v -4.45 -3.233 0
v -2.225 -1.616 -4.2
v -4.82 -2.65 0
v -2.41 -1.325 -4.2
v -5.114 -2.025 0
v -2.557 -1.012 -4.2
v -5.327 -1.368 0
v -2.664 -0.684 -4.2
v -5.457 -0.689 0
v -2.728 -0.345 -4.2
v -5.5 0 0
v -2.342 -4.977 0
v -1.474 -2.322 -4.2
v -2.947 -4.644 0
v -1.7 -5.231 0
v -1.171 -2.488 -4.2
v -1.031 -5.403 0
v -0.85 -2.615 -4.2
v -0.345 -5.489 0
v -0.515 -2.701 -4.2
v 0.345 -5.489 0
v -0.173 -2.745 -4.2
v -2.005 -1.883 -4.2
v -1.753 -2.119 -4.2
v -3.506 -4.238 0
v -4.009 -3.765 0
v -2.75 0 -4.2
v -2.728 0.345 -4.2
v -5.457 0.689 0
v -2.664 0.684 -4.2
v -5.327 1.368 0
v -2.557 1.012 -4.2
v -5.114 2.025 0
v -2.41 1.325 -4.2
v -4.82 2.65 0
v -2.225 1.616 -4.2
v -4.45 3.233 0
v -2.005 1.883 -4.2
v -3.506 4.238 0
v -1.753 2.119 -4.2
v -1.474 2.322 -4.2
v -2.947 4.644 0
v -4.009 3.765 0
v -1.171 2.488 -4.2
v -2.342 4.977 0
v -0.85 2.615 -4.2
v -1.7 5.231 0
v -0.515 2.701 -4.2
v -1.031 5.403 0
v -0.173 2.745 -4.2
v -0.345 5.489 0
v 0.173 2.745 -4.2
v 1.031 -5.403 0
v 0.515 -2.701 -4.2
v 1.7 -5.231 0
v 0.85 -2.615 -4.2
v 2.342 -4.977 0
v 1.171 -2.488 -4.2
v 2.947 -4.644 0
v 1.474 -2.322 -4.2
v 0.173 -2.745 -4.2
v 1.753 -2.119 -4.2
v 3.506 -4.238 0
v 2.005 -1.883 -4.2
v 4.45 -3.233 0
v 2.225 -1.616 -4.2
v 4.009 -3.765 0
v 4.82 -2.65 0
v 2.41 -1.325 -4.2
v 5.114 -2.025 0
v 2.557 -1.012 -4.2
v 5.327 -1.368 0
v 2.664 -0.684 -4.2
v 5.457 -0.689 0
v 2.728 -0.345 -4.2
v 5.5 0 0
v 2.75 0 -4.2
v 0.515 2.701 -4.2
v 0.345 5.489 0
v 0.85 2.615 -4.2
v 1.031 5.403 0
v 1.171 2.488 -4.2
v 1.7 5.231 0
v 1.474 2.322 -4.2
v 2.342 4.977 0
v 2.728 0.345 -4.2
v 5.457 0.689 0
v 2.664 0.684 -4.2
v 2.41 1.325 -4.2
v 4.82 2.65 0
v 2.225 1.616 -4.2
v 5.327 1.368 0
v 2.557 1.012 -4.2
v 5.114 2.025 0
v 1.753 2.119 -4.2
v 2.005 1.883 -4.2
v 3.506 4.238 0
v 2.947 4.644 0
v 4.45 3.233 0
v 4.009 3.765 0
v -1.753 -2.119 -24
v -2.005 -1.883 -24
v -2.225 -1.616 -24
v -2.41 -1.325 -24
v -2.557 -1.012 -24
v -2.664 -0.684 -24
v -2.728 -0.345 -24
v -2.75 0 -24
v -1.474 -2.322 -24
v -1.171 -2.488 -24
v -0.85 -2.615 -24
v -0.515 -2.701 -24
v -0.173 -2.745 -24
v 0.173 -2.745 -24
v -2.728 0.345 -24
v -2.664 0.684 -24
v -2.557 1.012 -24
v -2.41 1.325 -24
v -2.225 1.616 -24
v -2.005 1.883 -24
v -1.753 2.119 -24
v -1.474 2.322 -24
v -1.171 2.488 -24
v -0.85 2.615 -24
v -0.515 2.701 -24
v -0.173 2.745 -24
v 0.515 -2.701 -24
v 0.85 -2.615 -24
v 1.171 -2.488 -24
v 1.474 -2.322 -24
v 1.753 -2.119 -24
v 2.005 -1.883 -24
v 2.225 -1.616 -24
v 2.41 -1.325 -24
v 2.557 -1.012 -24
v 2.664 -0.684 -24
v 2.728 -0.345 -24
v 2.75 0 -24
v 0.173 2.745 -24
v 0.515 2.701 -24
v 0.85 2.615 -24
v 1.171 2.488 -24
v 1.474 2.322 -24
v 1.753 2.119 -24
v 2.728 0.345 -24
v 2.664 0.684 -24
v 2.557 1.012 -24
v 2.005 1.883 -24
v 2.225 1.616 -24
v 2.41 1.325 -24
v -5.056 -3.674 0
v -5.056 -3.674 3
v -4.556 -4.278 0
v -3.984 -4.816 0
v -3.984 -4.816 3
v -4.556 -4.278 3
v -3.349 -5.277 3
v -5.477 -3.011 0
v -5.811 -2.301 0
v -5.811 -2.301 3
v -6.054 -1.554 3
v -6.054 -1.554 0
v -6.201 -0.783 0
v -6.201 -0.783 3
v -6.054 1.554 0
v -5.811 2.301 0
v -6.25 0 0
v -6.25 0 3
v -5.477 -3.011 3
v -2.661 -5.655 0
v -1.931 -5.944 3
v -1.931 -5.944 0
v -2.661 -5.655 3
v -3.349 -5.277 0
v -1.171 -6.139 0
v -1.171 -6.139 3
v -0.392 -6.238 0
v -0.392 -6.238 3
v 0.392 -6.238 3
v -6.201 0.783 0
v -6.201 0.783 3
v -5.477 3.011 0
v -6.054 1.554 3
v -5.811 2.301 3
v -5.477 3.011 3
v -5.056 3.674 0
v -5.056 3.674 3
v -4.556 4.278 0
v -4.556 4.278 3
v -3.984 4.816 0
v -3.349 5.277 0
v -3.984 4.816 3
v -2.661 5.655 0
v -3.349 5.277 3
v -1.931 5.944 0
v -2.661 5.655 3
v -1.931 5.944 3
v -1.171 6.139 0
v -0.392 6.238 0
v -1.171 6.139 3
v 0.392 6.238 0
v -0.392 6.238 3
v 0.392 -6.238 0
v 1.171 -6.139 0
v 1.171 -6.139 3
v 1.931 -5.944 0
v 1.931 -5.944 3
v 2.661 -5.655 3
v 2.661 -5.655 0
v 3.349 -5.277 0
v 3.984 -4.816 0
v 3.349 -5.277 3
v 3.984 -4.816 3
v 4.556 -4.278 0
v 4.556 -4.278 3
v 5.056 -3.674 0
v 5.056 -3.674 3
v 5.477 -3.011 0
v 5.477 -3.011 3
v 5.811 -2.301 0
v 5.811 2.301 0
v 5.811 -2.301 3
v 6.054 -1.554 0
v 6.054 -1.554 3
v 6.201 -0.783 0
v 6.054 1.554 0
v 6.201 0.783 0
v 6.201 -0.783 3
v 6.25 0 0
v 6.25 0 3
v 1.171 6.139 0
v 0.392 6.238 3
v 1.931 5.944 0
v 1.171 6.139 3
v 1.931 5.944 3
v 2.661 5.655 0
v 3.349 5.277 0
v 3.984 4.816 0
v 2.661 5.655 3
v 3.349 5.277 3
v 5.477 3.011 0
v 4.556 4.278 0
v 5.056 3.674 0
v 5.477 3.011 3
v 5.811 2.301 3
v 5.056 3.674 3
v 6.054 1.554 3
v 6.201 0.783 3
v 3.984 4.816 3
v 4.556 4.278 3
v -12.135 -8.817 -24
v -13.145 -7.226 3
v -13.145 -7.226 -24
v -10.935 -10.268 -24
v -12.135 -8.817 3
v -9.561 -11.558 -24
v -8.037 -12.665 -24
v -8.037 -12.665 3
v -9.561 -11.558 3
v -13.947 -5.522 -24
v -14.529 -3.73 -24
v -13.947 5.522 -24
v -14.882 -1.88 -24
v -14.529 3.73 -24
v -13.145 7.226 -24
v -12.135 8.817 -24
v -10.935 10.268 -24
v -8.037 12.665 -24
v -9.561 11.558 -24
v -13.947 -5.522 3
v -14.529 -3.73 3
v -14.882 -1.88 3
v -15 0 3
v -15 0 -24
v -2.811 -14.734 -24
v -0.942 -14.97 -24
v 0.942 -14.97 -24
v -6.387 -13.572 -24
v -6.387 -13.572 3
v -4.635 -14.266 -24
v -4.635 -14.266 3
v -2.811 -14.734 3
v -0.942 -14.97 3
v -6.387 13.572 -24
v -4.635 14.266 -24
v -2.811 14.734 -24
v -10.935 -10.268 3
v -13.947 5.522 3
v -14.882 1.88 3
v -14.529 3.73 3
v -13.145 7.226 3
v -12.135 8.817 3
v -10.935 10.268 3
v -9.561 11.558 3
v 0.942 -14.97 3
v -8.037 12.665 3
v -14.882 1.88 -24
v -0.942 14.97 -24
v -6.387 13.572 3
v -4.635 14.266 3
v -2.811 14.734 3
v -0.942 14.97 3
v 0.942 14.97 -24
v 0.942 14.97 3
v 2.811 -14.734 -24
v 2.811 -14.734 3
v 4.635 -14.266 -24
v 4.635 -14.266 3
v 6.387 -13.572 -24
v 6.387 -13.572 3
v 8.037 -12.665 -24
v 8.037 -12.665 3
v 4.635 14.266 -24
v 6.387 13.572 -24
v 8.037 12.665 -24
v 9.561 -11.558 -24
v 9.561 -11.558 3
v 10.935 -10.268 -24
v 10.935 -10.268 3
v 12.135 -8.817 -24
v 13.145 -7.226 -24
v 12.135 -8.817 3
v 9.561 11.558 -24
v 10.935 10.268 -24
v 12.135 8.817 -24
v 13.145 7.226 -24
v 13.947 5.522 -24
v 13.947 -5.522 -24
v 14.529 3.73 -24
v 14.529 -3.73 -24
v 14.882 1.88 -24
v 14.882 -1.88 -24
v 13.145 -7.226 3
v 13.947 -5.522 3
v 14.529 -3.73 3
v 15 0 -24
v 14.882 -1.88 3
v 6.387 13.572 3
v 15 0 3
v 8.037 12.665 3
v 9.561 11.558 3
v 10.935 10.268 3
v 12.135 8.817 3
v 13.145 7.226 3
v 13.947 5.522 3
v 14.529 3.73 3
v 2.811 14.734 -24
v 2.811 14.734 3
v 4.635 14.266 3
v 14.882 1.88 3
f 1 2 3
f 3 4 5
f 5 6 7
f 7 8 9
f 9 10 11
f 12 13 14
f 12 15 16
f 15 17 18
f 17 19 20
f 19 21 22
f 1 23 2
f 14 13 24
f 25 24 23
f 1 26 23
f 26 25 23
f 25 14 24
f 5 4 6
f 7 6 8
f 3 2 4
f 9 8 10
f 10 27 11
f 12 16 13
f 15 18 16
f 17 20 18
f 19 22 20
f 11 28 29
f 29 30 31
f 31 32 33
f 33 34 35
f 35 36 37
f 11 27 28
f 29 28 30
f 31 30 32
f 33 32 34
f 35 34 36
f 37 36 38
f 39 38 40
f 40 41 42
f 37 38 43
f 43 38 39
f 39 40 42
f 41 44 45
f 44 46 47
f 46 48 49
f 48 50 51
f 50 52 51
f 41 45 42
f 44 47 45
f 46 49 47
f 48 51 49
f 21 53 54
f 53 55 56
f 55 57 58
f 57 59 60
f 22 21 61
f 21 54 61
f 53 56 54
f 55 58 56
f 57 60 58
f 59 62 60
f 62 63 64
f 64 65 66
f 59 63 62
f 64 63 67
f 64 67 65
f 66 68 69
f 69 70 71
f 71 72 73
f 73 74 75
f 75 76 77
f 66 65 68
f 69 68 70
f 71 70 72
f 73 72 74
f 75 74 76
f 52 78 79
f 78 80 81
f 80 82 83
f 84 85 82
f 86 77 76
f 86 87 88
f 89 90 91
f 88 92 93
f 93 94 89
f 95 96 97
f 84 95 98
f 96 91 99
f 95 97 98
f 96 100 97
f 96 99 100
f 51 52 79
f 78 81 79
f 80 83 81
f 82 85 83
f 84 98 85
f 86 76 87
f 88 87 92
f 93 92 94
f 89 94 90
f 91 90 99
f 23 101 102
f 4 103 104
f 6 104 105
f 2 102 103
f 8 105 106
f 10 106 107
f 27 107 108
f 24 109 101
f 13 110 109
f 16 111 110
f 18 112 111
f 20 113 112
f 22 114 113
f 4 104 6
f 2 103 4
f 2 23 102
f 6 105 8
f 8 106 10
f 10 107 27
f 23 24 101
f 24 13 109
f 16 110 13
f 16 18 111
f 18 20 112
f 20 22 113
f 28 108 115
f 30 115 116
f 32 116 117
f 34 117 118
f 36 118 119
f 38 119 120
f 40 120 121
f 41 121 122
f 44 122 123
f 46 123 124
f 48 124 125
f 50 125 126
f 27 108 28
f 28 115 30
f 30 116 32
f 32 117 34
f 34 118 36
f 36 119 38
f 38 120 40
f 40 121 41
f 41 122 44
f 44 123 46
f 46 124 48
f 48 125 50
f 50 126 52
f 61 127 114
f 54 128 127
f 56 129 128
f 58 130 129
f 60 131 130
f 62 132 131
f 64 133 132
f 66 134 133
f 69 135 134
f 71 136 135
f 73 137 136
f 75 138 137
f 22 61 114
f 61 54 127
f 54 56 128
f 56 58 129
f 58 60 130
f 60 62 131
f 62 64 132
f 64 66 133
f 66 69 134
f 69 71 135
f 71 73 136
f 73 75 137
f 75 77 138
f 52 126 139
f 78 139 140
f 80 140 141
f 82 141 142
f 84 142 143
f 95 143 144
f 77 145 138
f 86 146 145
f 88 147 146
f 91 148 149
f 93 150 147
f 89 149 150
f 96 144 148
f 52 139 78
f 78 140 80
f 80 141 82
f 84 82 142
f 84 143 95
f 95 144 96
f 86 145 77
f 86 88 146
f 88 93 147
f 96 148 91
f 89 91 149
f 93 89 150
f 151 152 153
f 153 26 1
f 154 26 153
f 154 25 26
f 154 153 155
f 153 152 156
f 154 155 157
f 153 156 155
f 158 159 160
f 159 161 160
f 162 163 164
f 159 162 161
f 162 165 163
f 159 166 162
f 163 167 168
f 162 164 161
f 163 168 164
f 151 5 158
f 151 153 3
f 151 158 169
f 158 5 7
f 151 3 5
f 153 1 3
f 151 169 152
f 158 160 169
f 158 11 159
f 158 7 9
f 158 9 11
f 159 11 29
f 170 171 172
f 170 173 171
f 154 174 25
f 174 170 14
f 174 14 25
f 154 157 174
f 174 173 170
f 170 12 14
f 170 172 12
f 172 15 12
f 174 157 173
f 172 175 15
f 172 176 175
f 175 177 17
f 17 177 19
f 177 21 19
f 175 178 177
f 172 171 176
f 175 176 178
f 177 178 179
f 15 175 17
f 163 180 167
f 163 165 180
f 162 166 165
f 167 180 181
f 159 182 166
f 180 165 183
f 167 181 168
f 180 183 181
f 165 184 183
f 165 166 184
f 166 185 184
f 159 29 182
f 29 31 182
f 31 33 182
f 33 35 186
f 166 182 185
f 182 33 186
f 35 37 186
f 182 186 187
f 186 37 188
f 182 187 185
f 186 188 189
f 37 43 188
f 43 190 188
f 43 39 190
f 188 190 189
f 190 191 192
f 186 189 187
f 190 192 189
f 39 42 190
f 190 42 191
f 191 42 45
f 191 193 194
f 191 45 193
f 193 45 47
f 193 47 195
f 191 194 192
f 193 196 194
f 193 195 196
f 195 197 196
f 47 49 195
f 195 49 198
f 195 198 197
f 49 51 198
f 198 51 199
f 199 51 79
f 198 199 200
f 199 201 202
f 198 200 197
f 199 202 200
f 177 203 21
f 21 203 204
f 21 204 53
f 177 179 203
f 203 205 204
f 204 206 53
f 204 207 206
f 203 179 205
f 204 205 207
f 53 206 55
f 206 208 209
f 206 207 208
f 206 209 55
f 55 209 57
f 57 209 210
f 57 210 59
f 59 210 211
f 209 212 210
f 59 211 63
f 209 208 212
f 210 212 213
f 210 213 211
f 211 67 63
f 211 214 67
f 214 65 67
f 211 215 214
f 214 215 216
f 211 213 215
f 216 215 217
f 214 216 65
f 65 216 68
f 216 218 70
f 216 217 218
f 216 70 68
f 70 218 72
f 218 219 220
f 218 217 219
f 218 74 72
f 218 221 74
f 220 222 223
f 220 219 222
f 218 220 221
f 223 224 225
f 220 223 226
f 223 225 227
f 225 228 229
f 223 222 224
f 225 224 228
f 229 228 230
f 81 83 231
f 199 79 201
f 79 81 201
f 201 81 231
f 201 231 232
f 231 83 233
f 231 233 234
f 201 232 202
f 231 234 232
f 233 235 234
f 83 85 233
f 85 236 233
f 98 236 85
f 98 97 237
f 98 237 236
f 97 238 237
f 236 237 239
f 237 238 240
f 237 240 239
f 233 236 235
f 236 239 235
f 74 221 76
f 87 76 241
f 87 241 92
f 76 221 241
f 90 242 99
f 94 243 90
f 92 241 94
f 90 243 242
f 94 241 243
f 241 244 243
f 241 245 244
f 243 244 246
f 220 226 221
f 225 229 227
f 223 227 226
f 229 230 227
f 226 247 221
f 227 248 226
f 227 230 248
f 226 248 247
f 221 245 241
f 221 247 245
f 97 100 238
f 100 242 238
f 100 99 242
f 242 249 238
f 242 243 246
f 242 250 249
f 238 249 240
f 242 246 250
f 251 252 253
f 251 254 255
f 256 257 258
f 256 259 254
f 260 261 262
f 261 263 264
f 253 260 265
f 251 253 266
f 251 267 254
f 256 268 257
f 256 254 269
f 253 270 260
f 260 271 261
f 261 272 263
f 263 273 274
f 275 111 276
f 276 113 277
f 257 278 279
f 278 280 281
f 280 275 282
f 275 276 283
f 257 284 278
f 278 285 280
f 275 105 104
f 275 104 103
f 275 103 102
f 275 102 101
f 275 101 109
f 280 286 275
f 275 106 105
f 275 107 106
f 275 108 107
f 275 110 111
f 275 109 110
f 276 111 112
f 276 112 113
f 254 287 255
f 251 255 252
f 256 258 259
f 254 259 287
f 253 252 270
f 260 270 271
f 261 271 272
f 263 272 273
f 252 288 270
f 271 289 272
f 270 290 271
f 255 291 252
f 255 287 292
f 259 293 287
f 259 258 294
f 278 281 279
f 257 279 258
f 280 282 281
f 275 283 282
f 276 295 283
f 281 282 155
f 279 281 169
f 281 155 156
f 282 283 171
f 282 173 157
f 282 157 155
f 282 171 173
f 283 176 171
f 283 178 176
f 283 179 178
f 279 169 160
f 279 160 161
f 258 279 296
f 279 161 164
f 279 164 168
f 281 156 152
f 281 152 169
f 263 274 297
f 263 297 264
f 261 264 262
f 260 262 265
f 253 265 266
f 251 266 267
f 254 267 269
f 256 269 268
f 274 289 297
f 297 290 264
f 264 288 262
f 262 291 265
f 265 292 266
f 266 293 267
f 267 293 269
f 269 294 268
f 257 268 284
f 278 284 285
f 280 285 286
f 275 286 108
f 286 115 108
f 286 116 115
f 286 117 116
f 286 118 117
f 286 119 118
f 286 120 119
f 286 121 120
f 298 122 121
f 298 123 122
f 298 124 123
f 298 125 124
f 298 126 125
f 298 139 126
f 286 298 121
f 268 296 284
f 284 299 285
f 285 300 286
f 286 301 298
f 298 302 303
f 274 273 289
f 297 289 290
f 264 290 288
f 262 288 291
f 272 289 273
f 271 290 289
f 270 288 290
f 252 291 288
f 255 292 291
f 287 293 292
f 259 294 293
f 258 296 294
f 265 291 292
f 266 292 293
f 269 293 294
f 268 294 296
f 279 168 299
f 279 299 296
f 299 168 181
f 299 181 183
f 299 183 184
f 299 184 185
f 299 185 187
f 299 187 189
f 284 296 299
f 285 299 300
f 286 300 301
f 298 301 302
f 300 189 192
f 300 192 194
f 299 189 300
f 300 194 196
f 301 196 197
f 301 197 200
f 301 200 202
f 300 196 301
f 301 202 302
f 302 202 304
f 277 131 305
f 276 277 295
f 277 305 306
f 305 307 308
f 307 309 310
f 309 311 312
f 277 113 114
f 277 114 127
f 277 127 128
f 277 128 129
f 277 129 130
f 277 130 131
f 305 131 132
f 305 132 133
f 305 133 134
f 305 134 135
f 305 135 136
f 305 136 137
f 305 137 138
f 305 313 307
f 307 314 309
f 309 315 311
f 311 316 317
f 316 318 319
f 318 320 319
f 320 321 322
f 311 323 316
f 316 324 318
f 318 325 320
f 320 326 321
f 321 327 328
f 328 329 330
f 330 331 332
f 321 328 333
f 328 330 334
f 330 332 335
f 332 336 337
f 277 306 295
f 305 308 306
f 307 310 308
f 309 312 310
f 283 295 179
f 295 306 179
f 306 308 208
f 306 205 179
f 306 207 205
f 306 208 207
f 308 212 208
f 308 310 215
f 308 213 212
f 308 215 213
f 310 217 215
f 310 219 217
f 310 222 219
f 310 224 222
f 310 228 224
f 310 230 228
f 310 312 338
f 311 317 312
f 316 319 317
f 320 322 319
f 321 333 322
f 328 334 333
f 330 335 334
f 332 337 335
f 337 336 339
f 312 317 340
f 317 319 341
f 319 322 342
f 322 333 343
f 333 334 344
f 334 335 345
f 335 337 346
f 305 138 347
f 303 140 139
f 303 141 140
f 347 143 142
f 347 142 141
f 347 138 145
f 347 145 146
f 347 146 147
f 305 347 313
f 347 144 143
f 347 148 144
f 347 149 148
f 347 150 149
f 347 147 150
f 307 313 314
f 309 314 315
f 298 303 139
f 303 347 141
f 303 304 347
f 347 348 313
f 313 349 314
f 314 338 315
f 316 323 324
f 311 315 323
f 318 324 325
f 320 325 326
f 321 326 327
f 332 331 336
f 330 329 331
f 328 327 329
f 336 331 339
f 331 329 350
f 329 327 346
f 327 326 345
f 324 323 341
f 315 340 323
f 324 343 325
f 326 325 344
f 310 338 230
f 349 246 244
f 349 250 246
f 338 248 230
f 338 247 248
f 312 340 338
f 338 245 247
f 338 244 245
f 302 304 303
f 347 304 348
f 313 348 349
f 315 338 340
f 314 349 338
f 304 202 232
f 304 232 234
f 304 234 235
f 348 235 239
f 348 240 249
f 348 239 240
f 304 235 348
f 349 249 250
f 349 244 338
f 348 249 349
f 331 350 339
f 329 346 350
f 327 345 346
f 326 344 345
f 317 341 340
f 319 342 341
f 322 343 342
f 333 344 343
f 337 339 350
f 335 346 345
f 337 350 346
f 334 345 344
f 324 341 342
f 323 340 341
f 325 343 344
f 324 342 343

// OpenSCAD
$fn = 50;

difference() {
	union() {
		translate(v = [0, 0, -24.0]) {
			cylinder(h = 27, r = 15.0);
		}
	}
	union() {
		translate(v = [0, 0, 0]) {
			rotate(a = [0, 0, 0]) {
				difference() {
					union() {
						translate(v = [0, 0, -27.0]) {
							cylinder(h = 27, r = 2.25);
						}
						translate(v = [0, 0, -4.2]) {
							cylinder(h = 4.2, r1 = 2.75, r2 = 5.5);
						}
						translate(v = [0, 0, -27.0]) {
							cylinder(h = 27, r = 2.75);
						}
						translate(v = [0, 0, -27.0]) {
							cylinder(h = 27, r = 2.25);
						}
					}
					union();
				}
			}
		}
		#cylinder(h = 3, r = 6.25);
	}
}
